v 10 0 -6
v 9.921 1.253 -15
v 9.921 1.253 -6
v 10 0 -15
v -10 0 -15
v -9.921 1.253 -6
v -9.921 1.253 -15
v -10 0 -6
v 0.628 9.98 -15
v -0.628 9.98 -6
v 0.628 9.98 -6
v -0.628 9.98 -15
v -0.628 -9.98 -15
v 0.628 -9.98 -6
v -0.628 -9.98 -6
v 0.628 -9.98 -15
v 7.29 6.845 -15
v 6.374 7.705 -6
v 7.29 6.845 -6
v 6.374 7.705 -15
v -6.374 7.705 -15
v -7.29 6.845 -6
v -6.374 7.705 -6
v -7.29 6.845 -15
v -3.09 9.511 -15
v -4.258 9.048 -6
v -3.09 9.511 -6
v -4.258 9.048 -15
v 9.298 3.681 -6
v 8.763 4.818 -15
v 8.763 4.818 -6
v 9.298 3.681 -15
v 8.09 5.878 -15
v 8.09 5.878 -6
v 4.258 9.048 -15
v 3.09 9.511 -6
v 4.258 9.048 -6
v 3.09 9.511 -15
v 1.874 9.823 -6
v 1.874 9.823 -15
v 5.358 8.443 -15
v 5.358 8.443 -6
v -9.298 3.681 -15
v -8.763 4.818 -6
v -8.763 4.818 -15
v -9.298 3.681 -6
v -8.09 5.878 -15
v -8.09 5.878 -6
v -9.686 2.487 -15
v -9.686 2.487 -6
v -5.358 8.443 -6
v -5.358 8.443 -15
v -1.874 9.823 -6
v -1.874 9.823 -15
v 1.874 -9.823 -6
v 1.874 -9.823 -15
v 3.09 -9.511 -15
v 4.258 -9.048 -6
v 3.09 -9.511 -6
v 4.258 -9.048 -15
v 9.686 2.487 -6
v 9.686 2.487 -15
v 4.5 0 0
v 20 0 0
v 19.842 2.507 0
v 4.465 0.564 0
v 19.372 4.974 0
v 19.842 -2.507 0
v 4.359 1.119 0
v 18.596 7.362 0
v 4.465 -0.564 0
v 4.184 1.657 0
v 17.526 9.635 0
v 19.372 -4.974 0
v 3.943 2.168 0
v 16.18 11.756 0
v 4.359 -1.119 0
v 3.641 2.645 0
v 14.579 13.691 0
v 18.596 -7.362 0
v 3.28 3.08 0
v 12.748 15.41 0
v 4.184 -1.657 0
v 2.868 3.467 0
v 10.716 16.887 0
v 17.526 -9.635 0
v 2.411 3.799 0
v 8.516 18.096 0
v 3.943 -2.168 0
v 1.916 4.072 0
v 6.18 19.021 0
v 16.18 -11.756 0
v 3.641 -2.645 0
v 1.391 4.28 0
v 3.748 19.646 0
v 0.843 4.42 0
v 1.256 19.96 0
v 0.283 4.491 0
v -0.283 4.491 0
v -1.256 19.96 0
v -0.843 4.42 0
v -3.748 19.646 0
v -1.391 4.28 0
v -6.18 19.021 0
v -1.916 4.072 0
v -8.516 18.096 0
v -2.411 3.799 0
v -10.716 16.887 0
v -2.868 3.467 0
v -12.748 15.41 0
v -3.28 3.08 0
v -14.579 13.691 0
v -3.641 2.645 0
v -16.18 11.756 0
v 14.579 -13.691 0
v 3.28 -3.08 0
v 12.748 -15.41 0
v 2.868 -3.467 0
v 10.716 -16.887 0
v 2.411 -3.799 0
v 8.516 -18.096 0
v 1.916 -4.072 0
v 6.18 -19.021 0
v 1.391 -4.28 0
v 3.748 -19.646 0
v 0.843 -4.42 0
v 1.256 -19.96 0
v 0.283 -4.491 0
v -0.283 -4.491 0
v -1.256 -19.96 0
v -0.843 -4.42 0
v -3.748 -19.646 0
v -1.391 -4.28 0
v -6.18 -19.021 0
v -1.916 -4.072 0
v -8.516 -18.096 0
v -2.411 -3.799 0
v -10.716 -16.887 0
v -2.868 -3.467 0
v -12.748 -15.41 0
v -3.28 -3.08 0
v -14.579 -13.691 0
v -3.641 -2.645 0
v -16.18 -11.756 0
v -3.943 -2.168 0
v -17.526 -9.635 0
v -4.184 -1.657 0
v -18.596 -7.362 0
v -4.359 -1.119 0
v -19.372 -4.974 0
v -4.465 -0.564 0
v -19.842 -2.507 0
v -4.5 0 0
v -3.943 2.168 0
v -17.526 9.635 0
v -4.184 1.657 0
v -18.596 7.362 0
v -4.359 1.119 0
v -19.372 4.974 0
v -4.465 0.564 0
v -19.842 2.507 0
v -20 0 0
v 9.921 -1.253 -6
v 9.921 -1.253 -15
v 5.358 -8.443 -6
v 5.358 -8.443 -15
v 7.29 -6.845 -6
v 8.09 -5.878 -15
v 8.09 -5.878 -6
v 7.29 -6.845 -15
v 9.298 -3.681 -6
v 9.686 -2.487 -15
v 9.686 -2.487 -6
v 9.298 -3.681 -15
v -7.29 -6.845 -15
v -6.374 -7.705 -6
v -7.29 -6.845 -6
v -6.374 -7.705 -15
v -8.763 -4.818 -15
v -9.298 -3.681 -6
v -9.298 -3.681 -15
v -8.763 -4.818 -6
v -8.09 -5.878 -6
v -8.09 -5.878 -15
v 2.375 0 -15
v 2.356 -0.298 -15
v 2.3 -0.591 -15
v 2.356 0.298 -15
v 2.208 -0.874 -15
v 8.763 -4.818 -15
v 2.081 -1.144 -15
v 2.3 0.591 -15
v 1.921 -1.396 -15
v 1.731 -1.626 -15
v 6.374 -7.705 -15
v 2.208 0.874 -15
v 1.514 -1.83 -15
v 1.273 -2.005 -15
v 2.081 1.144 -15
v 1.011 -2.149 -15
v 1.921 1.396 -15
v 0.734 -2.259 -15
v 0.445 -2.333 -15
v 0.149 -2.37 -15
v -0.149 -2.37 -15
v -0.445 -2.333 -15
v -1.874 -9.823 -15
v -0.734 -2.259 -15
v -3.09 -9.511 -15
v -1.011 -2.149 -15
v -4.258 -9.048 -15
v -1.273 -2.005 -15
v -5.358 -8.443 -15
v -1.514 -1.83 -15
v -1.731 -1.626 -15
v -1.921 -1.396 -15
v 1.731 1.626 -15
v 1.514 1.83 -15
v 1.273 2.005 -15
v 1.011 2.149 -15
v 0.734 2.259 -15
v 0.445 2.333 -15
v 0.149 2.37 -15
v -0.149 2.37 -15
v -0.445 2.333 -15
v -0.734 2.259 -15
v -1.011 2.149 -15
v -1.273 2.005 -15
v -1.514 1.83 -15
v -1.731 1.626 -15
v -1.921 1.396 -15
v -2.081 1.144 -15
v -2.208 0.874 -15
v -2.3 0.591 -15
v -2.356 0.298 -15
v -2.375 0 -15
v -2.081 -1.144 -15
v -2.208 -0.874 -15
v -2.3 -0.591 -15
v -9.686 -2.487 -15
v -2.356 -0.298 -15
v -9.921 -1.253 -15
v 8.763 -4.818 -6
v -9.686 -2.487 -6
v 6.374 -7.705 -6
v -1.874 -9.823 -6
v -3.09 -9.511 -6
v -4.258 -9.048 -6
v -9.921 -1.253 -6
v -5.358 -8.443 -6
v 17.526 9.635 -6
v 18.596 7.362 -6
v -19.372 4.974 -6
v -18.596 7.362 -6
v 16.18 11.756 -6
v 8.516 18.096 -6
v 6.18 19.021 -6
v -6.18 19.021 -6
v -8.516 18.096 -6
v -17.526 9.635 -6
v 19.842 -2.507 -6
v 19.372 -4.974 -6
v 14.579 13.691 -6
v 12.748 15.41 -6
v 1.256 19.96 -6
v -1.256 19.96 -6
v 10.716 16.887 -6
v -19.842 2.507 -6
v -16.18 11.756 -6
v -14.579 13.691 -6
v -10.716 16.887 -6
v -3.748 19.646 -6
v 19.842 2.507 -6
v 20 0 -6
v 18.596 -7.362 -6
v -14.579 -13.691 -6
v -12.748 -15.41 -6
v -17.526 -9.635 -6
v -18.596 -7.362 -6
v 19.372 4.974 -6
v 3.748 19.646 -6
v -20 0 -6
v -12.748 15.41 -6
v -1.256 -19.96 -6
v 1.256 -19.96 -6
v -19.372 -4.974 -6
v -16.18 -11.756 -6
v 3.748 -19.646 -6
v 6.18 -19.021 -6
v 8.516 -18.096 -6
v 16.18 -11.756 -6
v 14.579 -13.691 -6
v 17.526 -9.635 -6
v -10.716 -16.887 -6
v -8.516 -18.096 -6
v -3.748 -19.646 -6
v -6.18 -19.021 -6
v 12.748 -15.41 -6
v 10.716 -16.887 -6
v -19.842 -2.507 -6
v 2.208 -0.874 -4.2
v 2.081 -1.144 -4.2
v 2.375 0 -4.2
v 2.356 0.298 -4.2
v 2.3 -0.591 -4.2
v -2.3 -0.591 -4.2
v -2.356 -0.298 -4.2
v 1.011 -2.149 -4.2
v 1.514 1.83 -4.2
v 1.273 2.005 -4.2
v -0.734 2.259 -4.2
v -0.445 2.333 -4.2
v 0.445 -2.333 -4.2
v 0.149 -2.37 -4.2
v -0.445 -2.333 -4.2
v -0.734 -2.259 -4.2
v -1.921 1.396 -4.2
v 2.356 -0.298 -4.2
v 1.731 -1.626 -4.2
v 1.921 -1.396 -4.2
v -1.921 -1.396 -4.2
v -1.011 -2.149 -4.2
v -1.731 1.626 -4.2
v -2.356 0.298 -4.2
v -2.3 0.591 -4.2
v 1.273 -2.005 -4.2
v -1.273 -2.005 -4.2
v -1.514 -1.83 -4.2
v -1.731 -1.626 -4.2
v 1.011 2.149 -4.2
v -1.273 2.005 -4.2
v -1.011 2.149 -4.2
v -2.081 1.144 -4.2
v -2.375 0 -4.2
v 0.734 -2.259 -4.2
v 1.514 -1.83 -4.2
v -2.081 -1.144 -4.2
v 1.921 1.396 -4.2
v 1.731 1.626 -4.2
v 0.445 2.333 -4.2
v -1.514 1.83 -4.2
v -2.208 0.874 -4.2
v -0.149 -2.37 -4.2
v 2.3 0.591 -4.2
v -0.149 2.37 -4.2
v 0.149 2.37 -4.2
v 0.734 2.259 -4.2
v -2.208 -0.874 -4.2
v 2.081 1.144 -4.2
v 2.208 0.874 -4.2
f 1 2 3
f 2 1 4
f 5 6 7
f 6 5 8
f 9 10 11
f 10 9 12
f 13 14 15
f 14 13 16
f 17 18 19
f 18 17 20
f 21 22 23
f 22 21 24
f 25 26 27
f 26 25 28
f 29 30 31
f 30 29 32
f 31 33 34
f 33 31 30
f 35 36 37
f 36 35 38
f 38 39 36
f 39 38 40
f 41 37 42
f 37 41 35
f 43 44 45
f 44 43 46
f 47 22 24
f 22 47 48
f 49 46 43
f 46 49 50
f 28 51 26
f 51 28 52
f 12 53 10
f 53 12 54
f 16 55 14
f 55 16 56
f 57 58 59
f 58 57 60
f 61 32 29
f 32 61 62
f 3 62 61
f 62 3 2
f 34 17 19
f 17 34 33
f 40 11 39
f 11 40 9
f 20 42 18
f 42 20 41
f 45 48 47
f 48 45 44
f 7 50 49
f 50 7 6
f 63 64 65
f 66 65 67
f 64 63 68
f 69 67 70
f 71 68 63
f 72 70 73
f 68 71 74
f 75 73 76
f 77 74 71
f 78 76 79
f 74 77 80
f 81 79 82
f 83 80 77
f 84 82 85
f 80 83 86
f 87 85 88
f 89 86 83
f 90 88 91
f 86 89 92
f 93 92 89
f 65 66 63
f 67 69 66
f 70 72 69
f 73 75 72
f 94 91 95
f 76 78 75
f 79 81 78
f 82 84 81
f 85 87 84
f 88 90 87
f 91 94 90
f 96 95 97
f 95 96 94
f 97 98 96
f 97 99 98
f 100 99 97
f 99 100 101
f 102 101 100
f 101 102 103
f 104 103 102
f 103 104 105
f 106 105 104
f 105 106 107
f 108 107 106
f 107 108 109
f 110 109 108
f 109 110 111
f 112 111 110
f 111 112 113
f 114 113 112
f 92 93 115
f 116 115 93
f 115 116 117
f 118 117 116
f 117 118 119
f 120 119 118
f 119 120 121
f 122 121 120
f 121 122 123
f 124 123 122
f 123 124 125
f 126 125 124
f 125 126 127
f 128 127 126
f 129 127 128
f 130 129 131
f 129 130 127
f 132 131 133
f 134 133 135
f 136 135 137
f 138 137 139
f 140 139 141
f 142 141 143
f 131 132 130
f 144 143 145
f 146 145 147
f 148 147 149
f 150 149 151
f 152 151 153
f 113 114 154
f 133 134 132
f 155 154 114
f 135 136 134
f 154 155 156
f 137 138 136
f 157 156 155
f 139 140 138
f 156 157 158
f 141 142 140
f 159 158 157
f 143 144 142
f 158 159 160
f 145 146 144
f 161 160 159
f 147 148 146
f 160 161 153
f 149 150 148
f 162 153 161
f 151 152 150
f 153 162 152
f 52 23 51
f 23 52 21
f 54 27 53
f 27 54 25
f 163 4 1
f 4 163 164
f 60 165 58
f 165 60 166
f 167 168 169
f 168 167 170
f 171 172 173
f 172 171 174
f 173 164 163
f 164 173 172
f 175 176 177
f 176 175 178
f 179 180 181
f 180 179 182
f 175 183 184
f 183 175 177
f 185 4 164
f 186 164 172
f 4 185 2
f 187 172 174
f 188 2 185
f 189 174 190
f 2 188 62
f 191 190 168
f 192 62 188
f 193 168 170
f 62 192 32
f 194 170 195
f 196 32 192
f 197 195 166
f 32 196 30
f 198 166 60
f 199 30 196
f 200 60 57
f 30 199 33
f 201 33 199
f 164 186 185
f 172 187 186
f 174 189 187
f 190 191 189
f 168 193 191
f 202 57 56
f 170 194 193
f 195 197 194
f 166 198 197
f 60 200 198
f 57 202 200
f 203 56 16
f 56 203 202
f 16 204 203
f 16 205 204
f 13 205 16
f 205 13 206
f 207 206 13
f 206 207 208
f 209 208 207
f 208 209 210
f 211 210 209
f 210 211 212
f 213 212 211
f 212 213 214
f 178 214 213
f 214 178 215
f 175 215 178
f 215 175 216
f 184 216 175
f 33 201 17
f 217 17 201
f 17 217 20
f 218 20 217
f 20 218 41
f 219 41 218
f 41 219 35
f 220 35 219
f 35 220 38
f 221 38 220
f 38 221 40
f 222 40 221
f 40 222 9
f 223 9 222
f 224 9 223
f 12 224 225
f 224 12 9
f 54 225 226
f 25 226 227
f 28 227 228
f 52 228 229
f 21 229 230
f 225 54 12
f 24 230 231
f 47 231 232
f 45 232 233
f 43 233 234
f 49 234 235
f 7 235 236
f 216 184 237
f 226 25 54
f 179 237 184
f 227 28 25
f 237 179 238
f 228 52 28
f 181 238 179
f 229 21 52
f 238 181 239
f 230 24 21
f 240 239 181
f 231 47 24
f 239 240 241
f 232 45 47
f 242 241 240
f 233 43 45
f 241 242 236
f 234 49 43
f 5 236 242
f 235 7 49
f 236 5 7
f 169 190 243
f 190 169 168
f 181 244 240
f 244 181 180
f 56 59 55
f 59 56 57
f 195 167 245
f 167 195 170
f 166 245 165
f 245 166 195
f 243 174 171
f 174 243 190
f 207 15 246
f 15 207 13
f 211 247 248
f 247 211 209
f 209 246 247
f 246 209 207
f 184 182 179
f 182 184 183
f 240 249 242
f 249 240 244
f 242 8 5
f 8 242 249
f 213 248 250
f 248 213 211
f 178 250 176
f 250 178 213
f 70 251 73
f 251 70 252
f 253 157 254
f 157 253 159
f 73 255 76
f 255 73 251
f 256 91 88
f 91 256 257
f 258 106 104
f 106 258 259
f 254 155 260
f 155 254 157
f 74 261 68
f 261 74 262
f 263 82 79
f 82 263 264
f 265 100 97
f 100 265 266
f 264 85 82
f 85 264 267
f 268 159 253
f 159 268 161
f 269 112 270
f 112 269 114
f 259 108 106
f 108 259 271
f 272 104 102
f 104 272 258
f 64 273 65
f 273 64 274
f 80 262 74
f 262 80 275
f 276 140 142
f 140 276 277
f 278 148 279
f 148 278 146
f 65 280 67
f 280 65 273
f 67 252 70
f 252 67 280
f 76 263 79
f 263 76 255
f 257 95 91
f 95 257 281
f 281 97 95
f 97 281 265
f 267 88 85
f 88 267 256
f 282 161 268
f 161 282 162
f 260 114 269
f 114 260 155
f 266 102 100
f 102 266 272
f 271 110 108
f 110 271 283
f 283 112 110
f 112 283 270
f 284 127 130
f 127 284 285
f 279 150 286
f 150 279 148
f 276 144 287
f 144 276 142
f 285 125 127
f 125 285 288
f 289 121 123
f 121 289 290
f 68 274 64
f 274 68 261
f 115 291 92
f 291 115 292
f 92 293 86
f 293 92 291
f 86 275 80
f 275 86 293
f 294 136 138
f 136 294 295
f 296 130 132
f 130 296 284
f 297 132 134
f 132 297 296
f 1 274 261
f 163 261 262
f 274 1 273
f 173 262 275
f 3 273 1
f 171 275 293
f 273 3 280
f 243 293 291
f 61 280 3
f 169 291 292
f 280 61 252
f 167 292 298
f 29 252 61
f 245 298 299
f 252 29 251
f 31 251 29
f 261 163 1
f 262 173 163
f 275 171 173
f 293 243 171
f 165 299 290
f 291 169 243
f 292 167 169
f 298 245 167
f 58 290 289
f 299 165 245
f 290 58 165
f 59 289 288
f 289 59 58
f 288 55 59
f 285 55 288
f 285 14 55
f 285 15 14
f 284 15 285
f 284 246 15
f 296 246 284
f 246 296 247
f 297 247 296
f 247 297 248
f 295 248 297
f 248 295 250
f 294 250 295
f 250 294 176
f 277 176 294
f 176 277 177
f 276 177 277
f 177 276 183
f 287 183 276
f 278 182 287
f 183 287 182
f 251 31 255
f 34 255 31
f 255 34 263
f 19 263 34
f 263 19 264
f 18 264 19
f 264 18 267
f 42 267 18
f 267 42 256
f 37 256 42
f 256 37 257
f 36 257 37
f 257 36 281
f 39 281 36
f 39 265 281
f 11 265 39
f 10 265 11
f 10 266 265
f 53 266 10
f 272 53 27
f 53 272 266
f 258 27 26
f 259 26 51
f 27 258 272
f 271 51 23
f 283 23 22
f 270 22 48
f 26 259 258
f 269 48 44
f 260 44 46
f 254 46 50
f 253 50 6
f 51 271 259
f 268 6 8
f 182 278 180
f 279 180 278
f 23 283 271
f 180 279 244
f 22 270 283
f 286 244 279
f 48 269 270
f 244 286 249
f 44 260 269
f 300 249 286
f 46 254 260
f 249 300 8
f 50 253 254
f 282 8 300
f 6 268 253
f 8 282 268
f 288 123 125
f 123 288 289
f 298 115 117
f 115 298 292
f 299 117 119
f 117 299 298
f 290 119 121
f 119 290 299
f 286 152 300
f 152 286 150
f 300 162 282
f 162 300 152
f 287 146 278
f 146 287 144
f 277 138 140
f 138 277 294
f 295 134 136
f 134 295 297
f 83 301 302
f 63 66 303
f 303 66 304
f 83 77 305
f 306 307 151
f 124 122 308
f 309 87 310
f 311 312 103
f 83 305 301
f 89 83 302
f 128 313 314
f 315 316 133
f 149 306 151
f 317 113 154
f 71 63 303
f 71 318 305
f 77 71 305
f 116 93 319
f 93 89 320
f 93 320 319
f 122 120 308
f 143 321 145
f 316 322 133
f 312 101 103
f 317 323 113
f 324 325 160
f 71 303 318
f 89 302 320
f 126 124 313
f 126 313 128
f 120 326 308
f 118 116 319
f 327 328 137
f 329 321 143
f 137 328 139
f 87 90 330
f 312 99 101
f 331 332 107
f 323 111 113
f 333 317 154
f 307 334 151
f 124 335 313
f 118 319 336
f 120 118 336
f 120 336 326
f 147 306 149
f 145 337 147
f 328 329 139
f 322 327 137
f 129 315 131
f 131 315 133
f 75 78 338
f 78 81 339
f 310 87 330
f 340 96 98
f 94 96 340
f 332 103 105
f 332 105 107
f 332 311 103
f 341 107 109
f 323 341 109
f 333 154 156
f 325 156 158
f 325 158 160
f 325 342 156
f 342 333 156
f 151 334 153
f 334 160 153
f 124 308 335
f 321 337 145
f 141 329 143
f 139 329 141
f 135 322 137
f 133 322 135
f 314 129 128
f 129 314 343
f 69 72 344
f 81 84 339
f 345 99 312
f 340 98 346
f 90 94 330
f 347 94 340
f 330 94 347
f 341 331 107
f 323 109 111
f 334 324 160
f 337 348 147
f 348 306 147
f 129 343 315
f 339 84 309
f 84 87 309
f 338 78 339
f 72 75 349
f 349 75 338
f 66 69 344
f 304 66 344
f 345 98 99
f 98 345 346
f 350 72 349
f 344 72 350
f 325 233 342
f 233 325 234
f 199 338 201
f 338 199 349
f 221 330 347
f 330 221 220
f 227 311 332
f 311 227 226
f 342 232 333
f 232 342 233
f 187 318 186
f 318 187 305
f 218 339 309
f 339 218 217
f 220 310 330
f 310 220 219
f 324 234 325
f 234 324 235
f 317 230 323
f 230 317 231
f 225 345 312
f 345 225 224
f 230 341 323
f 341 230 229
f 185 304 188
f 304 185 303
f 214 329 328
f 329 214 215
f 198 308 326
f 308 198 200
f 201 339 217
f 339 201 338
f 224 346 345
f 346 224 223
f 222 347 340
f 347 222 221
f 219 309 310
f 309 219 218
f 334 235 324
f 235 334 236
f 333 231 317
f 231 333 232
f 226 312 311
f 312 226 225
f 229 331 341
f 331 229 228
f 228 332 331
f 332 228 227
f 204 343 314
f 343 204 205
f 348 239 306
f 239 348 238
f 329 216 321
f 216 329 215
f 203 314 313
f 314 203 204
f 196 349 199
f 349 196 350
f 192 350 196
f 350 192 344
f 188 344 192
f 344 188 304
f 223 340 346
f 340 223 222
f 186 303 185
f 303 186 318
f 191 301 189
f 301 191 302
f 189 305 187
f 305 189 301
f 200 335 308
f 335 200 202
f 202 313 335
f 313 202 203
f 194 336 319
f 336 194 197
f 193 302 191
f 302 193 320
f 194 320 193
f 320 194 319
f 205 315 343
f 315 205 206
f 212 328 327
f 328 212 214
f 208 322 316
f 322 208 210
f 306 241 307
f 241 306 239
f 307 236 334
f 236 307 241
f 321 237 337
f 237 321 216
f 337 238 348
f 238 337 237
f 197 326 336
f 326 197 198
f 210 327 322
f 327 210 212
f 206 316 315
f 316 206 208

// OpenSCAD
$fn = 50;


difference() {
	union() {
		translate(v = [0, 0, -15.0000000000]) {
			cylinder(h = 15, r = 10.0000000000);
		}
		translate(v = [0, 0, -6.0000000000]) {
			cylinder(h = 6, r = 20.0000000000);
		}
	}
	union() {
		translate(v = [0, 0, 0]) {
			rotate(a = [0, 0, 0]) {
				difference() {
					union() {
						#translate(v = [0, 0, -15.0000000000]) {
							cylinder(h = 15, r = 2.2500000000);
						}
						#translate(v = [0, 0, -4.2000000000]) {
							cylinder(h = 4.2000000000, r = 10.0000000000, r1 = 2.3750000000, r2 = 4.5000000000);
						}
						#translate(v = [0, 0, -15.0000000000]) {
							cylinder(h = 15, r = 2.3750000000);
						}
						#translate(v = [0, 0, -15.0000000000]) {
							cylinder(h = 15, r = 2.2500000000);
						}
					}
					union();
				}
			}
		}
	}
}
